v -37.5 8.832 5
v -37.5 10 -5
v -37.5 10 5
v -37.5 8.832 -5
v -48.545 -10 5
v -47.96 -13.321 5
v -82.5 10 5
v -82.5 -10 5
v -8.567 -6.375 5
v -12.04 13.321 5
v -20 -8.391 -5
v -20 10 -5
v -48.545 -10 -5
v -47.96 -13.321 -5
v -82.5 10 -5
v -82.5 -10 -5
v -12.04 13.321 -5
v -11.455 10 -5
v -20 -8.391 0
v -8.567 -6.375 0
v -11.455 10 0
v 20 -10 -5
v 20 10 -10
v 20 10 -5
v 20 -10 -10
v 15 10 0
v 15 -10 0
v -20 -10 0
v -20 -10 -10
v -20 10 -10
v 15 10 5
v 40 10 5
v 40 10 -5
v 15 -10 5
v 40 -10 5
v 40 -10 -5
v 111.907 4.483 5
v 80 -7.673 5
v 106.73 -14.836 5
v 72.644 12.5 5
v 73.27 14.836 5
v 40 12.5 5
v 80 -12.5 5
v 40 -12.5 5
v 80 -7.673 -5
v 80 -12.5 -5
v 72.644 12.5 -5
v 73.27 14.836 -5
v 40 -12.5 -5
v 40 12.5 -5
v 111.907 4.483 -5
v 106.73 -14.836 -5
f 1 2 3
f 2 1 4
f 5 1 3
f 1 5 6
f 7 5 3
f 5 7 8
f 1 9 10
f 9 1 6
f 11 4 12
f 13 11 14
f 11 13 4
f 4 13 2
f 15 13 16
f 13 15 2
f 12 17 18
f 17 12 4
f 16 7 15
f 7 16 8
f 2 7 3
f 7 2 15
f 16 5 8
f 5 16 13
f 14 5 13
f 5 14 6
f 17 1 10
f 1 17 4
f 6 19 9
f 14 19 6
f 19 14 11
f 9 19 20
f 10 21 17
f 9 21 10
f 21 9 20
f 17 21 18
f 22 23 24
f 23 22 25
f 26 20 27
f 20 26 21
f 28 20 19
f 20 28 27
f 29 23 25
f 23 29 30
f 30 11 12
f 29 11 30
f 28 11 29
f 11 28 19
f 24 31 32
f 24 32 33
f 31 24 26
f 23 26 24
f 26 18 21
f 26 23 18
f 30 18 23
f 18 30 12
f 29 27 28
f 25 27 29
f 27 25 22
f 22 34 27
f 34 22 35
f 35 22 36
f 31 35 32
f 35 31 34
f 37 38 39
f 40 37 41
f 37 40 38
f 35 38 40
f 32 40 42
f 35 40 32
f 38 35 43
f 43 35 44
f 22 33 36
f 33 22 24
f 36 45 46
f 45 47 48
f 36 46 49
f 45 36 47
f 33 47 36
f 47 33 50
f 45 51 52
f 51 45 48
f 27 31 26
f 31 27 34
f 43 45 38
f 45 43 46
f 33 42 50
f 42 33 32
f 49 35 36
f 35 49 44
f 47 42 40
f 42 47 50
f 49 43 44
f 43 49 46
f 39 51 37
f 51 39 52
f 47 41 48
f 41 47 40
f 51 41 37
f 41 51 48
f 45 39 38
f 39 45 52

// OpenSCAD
// Define dimensions for the rectangular block
block_length = 40;  // Length of the block
block_width = 20;   // Width of the block
block_height = 10;  // Height of the block

// Function to create a rectangular block
module rectangular_block(length, width, height) {
    cube([length, width, height], center = true);
}

// Generate six rectangular blocks positioned independently
translate([-60, 0, 0]) rectangular_block(45, block_width, block_height);  // Block 1: Increased length to 45
translate([-30, 0, 0]) rotate([0, 0, 10]) rectangular_block(block_length, block_width, block_height);  // Block 2: Rotated by 10 degrees
translate([0, 0, -5]) rectangular_block(block_length, block_width, block_height);  // Block 3: Lowered by 5 units
translate([35, 0, 0]) rectangular_block(block_length, block_width, block_height);  // Block 4: Shifted 5 units to the right
translate([60, 0, 0]) rectangular_block(block_length, 25, block_height);  // Block 5: Increased width to 25
translate([90, 0, 0]) rotate([0, 0, -15]) rectangular_block(block_length, block_width, block_height);  // Block 6: Rotated back by -15 degrees
